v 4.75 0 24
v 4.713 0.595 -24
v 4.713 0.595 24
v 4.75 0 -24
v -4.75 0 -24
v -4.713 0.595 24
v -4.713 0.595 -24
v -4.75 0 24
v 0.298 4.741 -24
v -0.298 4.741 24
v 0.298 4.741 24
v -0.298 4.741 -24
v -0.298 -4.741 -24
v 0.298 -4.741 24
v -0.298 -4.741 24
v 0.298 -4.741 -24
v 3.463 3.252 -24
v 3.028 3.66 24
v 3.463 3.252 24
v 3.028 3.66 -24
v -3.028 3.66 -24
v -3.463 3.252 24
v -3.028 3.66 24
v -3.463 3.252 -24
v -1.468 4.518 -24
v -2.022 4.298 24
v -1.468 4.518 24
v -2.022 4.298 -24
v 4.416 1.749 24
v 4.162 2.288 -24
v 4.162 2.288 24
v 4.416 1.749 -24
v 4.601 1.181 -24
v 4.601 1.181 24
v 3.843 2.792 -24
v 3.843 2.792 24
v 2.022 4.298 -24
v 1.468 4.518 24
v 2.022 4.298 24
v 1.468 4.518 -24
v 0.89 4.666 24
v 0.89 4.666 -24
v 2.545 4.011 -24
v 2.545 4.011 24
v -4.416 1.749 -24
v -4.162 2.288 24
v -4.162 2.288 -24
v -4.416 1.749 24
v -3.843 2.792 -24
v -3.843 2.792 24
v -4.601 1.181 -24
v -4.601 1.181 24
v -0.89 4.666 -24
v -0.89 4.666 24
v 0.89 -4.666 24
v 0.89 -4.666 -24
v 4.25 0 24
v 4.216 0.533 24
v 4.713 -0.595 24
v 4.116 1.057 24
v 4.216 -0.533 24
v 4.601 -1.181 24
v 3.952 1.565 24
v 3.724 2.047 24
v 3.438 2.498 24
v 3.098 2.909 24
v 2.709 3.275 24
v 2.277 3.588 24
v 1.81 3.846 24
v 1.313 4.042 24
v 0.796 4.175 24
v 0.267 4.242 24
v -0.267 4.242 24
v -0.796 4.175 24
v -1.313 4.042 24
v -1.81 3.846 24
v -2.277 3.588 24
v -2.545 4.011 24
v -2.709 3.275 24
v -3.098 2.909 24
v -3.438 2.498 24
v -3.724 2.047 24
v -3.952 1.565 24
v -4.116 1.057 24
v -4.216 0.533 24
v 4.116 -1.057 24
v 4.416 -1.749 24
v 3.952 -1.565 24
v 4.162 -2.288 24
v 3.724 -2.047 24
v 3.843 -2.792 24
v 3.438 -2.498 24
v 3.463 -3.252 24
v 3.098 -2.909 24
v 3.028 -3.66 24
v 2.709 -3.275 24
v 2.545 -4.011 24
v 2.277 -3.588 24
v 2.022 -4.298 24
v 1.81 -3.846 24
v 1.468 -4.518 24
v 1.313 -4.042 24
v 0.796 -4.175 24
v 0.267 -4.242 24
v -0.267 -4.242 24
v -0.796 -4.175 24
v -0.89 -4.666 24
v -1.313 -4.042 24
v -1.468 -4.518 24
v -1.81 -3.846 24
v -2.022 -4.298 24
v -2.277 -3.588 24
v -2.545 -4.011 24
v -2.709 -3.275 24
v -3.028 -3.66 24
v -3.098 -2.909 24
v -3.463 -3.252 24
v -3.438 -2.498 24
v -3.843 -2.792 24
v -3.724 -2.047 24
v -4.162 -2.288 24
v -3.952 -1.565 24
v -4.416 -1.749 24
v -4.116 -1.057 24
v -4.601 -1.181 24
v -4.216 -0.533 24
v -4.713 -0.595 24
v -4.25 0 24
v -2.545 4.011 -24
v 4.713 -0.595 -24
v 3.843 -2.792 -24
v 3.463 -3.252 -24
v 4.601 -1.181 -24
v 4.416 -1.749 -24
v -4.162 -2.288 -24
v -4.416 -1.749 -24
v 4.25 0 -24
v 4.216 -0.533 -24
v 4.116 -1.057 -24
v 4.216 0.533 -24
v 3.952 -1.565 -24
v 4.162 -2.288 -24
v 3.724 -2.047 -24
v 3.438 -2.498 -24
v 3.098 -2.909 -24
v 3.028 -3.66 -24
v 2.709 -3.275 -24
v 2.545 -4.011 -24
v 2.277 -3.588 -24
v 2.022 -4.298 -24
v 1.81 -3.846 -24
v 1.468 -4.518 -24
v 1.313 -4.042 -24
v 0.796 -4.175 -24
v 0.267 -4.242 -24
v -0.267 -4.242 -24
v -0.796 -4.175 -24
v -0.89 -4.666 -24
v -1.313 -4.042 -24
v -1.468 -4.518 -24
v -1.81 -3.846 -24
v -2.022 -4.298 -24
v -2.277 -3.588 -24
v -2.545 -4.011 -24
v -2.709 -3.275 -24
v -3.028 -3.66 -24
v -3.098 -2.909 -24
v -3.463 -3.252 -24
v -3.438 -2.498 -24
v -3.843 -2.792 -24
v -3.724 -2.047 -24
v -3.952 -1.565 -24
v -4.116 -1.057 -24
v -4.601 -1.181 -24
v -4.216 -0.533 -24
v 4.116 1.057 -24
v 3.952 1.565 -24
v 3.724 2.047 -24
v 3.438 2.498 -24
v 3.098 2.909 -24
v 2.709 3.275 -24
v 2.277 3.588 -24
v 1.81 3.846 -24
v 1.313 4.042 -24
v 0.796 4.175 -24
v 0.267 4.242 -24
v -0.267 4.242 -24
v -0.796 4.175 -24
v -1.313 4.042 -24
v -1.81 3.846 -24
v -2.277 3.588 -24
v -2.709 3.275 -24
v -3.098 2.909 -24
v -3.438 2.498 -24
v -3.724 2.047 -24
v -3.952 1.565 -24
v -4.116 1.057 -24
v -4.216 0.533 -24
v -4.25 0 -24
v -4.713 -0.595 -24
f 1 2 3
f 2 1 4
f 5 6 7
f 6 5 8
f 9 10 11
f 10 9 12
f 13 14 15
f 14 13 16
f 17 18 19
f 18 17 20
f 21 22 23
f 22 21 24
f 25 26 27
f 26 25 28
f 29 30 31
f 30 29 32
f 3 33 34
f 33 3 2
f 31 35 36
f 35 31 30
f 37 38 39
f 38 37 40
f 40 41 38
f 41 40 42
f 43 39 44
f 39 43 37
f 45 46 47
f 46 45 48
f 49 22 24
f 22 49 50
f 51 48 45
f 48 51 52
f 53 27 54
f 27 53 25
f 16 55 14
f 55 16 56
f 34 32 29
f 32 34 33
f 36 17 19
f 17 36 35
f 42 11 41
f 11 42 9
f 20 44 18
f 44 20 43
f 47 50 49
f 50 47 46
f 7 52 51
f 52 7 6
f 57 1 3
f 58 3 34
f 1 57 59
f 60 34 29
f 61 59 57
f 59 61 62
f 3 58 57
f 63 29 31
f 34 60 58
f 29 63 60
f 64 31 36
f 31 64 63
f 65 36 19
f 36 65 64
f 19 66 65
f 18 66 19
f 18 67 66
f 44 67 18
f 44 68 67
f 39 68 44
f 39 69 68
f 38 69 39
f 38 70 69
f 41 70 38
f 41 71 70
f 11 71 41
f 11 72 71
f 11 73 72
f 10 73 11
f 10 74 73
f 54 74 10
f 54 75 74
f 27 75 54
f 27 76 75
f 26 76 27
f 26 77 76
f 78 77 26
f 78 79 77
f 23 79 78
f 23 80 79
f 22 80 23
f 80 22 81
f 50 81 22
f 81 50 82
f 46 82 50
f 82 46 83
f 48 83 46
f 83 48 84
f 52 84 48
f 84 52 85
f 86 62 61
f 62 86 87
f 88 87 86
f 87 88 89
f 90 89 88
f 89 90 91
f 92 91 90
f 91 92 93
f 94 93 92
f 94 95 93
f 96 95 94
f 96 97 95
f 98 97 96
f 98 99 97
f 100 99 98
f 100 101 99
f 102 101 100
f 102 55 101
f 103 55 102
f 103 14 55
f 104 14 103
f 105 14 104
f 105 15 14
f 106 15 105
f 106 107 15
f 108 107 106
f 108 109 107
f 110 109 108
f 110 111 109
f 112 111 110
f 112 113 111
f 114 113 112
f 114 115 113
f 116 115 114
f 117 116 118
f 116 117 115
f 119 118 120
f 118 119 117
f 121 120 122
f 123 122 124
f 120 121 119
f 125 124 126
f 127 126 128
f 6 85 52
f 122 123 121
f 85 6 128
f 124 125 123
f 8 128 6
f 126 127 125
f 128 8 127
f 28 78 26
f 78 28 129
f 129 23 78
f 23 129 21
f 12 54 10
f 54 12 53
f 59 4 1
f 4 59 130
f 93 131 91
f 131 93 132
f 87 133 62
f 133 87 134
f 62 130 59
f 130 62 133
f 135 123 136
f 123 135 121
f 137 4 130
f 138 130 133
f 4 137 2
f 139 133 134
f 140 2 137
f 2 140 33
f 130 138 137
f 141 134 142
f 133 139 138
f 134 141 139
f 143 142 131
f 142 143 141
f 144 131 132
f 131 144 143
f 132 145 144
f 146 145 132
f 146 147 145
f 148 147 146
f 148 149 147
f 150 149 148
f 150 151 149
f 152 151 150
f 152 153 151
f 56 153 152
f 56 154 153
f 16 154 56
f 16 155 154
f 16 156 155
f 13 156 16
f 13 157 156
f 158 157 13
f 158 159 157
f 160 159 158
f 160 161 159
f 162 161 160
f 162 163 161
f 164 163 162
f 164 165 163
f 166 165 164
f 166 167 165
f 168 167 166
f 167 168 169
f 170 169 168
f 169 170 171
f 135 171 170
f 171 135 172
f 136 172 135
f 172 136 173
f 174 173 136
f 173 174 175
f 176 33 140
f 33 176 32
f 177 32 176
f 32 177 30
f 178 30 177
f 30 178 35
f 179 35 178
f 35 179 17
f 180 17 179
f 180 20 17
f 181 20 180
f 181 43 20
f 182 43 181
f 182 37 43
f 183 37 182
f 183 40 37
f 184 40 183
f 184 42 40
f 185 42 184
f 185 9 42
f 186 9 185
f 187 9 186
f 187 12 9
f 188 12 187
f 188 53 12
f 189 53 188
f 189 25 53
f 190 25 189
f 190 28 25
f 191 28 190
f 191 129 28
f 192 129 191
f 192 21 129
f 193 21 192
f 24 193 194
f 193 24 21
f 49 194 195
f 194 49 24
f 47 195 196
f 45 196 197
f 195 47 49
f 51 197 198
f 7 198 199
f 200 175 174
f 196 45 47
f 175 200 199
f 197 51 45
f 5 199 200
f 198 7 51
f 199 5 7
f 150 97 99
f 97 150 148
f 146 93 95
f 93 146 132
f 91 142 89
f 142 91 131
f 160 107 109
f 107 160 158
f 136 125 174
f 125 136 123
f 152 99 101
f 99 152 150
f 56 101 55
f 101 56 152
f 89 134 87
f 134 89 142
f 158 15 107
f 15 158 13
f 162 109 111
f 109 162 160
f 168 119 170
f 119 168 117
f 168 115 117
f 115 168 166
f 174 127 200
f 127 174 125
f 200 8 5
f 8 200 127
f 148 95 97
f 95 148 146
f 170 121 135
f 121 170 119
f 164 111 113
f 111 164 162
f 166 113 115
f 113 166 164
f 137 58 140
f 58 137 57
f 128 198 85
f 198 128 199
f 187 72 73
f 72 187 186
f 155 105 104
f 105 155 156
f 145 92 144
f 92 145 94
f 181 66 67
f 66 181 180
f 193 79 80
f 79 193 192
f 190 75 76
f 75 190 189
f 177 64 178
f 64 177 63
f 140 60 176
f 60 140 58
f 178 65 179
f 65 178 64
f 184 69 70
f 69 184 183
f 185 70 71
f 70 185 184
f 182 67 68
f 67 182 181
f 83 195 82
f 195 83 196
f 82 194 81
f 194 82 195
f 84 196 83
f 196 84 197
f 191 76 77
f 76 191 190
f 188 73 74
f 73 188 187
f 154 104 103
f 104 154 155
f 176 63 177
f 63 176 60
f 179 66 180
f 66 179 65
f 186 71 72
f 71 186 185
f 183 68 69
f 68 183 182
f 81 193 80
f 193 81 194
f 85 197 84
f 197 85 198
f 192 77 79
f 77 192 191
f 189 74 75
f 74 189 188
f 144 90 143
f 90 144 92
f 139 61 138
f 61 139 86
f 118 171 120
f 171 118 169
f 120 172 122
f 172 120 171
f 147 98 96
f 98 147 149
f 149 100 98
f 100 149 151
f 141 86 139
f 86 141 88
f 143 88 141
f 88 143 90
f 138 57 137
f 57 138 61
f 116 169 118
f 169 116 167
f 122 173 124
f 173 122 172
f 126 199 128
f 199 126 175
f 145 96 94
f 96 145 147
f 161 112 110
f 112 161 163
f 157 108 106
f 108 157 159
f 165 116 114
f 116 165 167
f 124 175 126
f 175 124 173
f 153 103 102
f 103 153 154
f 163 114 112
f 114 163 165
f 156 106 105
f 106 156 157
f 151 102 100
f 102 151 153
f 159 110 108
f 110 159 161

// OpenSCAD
$fn = 50;


difference() {
	union() {
		translate(v = [0, 0, -24.0000000000]) {
			cylinder(h = 48, r = 4.7500000000);
		}
	}
	union() {
		translate(v = [0, 0, -100.0000000000]) {
			cylinder(h = 200, r = 4.2500000000);
		}
	}
}
